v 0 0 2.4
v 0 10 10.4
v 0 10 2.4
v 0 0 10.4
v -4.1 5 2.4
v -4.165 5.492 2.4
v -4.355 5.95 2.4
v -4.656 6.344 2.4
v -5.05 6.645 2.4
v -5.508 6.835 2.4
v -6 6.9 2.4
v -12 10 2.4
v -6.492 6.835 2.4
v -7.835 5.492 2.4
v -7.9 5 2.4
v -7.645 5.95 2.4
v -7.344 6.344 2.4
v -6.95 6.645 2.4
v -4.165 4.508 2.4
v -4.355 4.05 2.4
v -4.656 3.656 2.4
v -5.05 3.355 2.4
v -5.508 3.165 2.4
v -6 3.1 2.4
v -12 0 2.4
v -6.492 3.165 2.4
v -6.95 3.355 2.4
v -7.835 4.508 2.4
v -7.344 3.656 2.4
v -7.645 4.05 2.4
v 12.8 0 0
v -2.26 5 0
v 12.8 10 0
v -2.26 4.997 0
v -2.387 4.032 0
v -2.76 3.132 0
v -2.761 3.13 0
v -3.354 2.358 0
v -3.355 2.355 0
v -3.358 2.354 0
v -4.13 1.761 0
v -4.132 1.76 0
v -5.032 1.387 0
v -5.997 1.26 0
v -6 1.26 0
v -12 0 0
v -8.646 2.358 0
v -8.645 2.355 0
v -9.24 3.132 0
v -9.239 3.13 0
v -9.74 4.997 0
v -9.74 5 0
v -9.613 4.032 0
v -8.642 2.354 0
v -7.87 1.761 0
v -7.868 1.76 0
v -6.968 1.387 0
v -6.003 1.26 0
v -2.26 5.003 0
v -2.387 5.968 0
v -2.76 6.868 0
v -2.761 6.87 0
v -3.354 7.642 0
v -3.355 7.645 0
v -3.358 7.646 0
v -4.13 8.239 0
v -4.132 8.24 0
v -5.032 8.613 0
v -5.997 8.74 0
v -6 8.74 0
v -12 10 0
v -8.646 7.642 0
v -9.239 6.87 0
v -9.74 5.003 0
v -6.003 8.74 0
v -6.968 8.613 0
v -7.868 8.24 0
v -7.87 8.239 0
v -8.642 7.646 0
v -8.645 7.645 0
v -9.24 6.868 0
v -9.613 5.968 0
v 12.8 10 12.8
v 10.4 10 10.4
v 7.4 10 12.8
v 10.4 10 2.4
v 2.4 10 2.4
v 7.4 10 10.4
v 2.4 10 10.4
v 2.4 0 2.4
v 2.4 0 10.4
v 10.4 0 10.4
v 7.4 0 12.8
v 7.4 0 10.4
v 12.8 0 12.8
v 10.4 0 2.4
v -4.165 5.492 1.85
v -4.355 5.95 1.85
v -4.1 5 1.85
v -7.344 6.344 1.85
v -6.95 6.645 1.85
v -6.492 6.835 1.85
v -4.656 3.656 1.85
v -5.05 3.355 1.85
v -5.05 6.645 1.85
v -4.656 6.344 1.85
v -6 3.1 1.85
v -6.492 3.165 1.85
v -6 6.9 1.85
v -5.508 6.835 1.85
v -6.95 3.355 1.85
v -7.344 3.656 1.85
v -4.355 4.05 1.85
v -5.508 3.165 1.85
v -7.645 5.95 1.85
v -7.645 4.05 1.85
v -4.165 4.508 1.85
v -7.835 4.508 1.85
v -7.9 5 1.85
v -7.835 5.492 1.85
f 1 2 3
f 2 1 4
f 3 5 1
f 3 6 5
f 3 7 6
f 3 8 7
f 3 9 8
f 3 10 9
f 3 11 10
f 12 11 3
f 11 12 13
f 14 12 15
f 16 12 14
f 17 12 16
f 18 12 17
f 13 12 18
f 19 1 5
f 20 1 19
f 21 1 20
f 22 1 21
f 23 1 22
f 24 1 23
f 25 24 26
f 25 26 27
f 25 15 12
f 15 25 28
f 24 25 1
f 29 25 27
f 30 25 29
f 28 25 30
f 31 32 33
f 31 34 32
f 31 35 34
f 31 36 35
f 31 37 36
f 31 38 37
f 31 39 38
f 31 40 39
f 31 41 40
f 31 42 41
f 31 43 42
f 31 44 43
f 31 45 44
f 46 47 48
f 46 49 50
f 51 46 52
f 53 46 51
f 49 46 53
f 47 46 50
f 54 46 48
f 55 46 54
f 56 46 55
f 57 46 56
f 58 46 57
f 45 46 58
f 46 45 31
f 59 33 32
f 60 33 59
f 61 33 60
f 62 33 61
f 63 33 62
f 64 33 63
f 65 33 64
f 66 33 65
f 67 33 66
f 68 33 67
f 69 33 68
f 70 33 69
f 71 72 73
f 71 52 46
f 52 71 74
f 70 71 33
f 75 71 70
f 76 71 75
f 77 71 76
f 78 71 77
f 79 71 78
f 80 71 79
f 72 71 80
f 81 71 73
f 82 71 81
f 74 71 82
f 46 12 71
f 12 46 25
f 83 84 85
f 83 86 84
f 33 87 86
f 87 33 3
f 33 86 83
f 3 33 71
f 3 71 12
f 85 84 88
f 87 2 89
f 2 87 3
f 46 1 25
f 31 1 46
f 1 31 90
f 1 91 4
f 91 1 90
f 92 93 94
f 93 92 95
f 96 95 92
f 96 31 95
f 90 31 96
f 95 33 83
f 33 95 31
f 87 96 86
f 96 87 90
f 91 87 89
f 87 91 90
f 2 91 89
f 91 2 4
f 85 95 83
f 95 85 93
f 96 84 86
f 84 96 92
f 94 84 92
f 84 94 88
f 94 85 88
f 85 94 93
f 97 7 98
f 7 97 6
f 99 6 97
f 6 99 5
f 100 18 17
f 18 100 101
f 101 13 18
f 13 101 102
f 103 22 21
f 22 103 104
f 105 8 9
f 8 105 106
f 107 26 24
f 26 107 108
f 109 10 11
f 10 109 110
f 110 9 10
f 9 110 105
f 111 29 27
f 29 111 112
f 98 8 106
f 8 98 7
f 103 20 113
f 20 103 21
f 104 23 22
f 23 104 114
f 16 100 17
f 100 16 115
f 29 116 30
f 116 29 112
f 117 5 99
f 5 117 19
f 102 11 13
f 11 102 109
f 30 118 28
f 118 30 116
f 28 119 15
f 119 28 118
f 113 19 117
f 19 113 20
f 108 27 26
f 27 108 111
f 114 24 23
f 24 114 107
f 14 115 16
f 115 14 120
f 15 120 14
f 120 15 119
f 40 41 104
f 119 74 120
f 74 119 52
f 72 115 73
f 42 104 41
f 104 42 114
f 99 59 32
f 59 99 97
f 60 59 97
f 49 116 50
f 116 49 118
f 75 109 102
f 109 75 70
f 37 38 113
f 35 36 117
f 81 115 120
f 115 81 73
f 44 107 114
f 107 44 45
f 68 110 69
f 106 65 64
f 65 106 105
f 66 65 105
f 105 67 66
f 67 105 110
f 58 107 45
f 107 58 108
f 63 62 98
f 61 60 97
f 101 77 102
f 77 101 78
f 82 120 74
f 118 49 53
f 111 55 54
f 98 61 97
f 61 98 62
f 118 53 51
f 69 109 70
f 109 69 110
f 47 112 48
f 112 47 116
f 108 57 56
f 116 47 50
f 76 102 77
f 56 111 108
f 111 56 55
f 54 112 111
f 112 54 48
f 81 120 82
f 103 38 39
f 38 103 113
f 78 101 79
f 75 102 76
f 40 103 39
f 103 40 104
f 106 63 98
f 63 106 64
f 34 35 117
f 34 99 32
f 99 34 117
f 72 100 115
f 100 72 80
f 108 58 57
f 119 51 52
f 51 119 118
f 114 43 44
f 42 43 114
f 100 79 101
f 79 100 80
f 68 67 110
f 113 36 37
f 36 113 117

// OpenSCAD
// Screw-on cable clip for the underside of the top: a saddle for one or two cables with a
// single countersunk #6 x 5/8 in screw (13 mm into the top). Two sizes in one file: set
// `bundle` to the cable diameter you want to hold. Print on its side as rendered, PETG.

bundle = 8;     // cable or bundle diameter: 8 for a monitor lead, 14 for a small bundle
wall   = 2.4;
w      = 10;    // clip width along the cable
hole   = 3.8;
csk    = 7.5;
foot   = 12;    // screw foot length

difference() {
    union() {
        translate([-foot, 0, 0]) cube([foot, w, wall]);                               // screw foot, against the underside
        translate([0, 0, 0]) cube([bundle + 2 * wall, w, wall]);                      // top of the saddle
        translate([0, 0, 0]) cube([wall, w, bundle + wall]);                          // one side
        translate([bundle + wall, 0, 0]) cube([wall, w, bundle + 2 * wall]);          // other side, longer, with a lip
        translate([bundle + wall - 3, 0, bundle + wall]) cube([3 + wall, w, wall]);    // the lip that keeps the cable in
    }
    translate([-foot / 2, w / 2, -1]) { cylinder(d = hole, h = wall + 2, $fn = 24); translate([0, 0, 1 - 0.01]) cylinder(d1 = csk, d2 = hole, h = (csk - hole) / 2 + 0.01, $fn = 24); }
}
